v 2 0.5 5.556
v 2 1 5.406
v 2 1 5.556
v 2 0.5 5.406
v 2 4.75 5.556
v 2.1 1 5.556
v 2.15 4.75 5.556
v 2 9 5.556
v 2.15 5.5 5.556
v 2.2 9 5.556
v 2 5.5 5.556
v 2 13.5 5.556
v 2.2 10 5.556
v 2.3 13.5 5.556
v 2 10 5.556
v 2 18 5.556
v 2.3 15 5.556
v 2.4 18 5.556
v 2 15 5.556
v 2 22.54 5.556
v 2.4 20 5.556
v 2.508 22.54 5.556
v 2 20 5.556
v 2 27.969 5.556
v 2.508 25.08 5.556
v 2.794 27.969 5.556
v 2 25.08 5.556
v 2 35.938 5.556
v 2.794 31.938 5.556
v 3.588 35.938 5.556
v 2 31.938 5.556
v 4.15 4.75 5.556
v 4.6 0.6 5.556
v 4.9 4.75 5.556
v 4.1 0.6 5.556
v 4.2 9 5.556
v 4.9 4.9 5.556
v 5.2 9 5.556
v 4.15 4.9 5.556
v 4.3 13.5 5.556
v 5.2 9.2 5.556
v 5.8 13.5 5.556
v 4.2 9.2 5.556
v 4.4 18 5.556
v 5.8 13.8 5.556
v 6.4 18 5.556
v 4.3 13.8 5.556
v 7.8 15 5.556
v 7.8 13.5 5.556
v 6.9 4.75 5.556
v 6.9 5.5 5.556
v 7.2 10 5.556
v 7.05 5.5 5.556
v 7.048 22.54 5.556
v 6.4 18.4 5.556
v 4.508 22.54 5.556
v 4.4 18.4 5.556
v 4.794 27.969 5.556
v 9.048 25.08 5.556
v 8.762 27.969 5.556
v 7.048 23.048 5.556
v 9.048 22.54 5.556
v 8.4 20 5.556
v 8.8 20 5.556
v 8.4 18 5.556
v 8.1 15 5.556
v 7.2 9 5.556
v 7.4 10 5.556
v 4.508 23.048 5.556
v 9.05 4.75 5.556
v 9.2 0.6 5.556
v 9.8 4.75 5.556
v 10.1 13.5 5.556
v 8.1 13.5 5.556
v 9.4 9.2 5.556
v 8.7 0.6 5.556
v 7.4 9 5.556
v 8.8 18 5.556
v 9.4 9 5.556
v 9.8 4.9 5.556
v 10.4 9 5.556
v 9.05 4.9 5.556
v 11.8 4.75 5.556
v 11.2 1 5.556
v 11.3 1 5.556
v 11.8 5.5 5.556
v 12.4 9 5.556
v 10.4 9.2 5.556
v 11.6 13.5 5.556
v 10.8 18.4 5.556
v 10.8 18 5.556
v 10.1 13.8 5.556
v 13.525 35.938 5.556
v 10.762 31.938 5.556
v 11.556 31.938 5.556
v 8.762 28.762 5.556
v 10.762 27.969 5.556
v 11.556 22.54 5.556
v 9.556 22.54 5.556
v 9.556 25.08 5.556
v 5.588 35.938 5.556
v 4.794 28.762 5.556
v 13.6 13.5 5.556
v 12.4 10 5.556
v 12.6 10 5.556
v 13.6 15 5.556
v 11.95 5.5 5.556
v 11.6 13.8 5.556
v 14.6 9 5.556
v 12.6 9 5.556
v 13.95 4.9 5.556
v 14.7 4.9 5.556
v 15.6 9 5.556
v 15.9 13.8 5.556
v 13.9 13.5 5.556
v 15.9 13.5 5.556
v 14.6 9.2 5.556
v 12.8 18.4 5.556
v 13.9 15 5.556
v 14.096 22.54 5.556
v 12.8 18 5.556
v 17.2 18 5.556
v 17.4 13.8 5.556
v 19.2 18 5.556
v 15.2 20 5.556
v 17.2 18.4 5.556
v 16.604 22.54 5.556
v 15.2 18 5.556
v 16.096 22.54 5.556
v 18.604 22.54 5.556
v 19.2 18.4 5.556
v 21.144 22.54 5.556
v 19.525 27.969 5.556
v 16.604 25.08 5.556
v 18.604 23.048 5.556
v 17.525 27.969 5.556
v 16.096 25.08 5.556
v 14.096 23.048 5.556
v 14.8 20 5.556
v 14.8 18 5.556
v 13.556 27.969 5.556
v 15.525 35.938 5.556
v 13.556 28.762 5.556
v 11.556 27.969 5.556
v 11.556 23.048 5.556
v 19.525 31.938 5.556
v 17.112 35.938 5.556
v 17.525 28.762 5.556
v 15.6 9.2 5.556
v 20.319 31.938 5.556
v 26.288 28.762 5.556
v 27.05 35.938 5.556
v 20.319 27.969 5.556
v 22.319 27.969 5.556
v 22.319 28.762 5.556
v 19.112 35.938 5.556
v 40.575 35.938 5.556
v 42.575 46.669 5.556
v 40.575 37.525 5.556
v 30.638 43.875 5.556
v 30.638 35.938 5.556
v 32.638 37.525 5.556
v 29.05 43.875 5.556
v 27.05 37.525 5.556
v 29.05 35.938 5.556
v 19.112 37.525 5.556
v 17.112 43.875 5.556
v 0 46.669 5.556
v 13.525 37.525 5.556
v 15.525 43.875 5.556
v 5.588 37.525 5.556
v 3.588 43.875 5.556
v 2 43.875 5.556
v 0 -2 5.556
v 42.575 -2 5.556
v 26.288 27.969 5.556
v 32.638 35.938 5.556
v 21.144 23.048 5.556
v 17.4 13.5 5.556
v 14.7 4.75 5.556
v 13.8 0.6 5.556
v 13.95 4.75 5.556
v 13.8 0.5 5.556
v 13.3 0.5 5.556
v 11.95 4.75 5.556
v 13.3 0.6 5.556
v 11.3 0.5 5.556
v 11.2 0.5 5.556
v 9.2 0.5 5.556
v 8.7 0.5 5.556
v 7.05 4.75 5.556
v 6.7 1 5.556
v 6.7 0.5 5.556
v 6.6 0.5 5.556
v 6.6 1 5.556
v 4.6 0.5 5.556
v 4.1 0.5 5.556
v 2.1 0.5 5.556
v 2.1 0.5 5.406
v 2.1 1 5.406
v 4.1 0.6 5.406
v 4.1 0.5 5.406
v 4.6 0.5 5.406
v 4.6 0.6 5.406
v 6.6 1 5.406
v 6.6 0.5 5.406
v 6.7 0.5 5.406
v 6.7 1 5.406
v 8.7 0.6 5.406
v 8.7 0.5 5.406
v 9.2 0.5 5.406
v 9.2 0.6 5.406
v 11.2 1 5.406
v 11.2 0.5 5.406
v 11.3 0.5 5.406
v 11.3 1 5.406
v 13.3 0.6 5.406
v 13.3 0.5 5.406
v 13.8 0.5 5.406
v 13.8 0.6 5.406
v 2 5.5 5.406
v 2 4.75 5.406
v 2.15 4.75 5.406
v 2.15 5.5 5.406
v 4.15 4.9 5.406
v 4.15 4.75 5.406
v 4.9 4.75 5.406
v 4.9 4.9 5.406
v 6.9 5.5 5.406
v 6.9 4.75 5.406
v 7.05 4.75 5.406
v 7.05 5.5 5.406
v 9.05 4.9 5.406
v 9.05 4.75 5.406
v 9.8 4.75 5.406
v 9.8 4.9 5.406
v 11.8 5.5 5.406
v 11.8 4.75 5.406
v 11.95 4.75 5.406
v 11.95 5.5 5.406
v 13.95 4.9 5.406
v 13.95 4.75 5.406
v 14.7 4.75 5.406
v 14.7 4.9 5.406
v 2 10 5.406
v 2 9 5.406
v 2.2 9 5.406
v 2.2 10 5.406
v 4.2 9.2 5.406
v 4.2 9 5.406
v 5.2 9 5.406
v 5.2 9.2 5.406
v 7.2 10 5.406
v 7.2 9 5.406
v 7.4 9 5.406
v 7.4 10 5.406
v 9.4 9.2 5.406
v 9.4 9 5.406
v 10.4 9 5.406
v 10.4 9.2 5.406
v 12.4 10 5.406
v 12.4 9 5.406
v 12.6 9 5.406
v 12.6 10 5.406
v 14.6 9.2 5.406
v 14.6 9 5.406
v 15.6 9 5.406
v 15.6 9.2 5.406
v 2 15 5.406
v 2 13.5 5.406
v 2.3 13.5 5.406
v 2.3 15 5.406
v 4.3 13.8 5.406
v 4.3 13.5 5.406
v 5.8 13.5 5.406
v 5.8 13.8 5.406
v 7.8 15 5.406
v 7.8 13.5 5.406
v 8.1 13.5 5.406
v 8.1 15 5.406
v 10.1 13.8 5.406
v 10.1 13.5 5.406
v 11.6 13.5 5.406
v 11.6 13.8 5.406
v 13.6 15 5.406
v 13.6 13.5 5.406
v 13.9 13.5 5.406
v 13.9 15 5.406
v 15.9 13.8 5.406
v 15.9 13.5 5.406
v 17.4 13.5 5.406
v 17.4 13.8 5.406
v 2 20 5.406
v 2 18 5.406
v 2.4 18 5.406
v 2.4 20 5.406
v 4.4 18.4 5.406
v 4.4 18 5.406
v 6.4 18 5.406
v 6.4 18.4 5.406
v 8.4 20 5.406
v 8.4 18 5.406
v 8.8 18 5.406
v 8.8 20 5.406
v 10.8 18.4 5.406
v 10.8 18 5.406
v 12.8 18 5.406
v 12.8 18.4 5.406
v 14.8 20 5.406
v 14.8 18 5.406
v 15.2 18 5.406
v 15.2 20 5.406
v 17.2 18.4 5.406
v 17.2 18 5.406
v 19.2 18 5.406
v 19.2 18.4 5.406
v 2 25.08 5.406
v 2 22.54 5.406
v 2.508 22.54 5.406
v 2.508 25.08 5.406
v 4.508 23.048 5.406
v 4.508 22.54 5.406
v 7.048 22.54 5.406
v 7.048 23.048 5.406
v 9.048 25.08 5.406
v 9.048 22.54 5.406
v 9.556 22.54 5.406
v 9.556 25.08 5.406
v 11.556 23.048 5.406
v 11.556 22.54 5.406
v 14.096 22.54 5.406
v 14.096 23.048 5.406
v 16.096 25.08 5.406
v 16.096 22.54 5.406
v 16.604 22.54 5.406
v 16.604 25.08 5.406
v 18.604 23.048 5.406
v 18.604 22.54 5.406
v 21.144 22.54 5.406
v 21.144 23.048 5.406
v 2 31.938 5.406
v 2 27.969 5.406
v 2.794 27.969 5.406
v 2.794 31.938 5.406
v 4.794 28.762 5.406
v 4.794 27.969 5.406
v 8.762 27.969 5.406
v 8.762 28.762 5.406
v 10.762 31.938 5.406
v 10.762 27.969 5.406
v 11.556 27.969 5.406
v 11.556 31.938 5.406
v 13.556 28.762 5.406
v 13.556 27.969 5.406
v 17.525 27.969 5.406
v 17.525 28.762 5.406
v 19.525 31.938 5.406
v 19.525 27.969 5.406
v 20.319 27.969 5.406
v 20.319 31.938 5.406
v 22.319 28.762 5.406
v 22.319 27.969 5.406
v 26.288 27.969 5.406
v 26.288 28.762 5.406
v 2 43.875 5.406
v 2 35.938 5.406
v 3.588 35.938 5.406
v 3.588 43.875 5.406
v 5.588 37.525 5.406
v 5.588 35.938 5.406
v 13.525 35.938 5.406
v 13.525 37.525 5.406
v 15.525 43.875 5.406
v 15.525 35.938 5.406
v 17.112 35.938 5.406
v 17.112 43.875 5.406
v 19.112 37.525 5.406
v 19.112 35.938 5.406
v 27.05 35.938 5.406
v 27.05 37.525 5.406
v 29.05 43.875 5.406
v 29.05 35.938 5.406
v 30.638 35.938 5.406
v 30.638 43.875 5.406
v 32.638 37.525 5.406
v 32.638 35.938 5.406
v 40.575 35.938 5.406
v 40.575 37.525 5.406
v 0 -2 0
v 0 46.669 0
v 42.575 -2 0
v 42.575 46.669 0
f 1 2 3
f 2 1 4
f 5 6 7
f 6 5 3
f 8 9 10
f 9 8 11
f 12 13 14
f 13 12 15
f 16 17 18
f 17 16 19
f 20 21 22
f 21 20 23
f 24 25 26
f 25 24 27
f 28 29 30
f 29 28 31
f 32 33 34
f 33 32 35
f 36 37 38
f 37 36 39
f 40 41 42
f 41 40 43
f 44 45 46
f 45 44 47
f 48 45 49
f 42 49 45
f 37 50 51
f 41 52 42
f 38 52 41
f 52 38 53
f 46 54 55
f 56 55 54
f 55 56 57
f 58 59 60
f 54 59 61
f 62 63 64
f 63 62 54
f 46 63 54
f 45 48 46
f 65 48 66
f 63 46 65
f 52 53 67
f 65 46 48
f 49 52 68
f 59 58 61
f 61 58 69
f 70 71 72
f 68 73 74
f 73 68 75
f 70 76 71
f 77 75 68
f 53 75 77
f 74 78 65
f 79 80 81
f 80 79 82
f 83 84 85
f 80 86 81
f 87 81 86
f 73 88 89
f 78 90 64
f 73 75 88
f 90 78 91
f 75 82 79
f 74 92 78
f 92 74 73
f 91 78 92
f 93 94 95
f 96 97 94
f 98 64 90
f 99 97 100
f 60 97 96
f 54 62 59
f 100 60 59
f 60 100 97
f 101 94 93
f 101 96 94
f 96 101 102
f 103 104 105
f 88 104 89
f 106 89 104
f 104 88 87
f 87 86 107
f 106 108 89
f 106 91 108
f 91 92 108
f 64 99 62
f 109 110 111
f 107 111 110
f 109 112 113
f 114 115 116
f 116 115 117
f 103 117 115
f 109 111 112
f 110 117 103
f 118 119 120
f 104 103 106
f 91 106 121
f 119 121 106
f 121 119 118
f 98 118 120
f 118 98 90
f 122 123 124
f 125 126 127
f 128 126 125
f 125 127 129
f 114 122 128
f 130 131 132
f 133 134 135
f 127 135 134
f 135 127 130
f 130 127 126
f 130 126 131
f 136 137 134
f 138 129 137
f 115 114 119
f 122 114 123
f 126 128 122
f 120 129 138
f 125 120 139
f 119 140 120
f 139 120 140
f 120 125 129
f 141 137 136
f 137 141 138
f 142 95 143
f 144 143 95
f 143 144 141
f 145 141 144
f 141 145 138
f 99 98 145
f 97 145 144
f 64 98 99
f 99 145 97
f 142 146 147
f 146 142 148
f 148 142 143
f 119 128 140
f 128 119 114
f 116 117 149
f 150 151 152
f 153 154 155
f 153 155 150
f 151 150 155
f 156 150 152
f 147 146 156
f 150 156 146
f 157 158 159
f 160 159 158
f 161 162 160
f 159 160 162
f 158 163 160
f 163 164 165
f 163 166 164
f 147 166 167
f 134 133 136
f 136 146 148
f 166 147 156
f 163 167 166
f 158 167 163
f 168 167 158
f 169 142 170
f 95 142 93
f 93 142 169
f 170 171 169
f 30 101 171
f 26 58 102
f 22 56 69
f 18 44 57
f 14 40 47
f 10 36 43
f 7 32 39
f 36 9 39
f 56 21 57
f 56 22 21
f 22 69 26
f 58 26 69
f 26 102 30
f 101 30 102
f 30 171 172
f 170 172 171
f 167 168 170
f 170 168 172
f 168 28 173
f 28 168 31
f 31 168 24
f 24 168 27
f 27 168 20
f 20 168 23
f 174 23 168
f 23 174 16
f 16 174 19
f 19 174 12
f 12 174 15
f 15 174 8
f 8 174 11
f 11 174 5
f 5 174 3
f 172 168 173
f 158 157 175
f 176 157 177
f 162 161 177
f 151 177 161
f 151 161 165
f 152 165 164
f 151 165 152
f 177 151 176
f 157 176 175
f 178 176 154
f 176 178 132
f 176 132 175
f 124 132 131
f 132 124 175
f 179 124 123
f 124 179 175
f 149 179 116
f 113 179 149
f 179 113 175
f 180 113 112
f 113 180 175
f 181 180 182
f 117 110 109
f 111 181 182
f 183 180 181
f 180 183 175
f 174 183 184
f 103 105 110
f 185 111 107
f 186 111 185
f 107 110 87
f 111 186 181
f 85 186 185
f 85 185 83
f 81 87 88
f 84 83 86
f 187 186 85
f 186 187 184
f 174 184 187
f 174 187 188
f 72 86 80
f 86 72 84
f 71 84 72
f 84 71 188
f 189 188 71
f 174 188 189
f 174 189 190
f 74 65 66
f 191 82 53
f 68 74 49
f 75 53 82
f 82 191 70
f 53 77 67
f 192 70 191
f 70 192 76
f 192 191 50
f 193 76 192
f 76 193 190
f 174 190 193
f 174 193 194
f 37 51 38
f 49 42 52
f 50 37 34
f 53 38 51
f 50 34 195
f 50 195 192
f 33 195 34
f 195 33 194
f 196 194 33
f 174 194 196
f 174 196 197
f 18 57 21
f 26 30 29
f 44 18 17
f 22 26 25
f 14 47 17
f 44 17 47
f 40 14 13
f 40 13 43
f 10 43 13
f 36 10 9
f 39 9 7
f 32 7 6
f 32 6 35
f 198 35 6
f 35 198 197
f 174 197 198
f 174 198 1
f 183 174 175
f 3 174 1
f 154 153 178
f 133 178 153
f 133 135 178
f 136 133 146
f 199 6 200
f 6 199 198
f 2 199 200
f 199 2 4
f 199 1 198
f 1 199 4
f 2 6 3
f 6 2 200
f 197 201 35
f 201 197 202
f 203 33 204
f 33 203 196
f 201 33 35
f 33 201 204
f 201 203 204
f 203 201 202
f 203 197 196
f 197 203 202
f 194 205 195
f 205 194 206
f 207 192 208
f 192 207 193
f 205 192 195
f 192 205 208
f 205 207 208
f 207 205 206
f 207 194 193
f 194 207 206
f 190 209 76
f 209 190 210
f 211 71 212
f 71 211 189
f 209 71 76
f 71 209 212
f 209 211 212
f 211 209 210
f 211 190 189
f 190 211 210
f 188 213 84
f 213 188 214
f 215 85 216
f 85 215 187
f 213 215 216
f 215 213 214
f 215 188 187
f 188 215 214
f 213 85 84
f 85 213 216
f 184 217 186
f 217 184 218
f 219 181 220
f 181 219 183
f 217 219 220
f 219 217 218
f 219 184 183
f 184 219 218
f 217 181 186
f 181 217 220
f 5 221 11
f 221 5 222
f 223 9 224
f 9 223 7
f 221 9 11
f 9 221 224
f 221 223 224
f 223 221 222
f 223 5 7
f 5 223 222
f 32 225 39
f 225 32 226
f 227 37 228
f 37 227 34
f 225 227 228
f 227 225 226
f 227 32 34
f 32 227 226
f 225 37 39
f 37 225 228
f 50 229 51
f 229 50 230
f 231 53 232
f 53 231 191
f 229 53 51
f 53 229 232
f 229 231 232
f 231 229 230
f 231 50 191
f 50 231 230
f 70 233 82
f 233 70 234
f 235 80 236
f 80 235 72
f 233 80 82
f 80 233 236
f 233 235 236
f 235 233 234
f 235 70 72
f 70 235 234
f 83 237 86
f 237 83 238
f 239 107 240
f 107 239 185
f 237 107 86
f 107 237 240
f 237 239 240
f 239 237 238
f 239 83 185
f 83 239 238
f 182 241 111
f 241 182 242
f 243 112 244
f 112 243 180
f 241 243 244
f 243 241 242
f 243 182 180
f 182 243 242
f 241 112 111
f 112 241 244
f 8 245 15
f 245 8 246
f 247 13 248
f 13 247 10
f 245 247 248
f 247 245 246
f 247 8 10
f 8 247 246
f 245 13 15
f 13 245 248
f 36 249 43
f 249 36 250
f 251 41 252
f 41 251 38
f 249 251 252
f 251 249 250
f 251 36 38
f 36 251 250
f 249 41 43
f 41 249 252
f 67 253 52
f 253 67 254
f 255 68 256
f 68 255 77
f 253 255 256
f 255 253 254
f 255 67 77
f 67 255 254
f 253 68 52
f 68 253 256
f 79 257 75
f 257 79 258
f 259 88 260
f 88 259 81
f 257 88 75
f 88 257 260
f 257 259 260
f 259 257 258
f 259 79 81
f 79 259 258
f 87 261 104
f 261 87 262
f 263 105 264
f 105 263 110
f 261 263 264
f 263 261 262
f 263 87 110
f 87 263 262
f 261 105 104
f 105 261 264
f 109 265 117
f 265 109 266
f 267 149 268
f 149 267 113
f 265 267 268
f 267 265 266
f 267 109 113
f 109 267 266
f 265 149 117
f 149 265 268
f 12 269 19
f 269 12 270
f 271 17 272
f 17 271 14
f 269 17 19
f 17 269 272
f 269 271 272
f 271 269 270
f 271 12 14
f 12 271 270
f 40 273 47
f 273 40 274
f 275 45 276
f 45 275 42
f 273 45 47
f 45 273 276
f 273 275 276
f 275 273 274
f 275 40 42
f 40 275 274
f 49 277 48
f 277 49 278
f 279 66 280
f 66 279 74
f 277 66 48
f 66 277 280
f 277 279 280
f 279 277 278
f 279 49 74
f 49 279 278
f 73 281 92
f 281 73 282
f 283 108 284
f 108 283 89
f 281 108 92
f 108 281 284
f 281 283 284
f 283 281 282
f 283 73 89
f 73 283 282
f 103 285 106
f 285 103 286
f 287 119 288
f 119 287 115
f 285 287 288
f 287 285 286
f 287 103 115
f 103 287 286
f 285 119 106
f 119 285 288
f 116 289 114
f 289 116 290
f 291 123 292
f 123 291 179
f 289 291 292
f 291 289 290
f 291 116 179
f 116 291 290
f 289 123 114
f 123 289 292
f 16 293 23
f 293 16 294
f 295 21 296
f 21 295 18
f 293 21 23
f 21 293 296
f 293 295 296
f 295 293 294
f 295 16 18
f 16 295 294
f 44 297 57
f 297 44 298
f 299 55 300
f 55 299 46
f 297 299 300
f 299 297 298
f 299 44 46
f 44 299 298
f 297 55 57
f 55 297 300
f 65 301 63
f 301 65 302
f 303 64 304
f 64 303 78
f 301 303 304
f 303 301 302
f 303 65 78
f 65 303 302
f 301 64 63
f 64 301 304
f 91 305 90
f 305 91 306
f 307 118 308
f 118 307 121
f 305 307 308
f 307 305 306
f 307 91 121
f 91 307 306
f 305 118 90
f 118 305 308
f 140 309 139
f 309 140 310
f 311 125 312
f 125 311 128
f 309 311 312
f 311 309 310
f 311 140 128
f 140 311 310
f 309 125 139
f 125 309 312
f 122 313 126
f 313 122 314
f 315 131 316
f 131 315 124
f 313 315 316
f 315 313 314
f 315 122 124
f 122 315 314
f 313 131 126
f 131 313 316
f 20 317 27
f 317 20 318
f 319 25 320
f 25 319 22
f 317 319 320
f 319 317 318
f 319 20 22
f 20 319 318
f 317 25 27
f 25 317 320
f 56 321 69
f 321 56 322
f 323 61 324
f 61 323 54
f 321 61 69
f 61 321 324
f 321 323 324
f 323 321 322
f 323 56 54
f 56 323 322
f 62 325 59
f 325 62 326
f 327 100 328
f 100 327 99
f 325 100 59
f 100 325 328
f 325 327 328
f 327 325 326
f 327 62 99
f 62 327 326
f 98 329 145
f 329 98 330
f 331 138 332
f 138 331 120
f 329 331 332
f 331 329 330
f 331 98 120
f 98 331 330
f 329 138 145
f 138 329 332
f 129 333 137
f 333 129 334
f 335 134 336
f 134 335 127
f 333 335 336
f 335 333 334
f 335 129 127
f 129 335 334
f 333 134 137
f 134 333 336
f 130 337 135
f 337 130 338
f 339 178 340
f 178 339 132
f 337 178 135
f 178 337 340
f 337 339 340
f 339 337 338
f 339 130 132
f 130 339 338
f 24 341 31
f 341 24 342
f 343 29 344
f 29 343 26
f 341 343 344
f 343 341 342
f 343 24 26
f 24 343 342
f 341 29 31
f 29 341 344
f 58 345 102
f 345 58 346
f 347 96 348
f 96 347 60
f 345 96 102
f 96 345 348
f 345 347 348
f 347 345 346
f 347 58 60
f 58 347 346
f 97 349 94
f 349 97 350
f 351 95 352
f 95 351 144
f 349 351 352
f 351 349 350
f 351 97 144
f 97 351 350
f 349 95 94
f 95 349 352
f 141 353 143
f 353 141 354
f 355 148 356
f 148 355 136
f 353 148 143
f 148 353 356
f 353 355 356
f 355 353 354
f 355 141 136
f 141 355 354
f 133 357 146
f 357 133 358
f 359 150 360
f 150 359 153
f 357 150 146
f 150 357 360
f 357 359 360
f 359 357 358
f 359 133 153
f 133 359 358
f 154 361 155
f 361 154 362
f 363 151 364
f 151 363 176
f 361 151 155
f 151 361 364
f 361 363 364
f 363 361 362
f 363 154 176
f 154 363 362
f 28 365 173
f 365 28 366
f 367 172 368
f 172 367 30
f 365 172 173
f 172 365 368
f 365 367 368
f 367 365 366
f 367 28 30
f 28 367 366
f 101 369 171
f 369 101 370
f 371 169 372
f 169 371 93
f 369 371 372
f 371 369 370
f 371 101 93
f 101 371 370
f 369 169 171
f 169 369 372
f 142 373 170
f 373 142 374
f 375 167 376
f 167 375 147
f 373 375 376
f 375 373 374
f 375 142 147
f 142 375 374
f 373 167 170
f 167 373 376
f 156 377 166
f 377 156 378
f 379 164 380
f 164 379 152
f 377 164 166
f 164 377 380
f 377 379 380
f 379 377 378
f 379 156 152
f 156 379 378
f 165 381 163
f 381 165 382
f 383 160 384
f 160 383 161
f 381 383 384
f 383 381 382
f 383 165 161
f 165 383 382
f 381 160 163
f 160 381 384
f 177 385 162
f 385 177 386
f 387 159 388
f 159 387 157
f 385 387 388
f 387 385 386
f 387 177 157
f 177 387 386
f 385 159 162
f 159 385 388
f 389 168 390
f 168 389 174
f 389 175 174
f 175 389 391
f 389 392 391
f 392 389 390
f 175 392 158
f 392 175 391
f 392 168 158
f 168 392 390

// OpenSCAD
//Parameters
  //Number of technical replicates
  numReplications = 3;	
  //Feature sizes to test in ascending order
  cubeSize = [0.05, 0.075, 0.1, 0.15, 0.2, 0.254, 0.396875, 0.79375];
  //End mill diameter 
  depth = 0.15;     //Depth of cut
  stockZ = 5.556;

//Maths
  //Add 1mm to end mill diameter to space out replicates
  Spacing = 2;
  StockX = (((2*max(cubeSize))+(2*Spacing)+(10*max(cubeSize)))*numReplications);
  StockZ = stockZ; 
  NumOfCubeSizes = len(cubeSize);
  
//uncomment to render
negativeFeaturesTestDevice();

//Module Definition
module negativeFeaturesTestDevice(){
difference(){
  //Draw stock
  hull(){
    translate([0,-Spacing,0])cube([Spacing+StockX,Spacing,StockZ], center=false);
    for(i = [0 : len(cubeSize)-1]){
    let (YLocation = 10*cubeSize[i]+i*2*Spacing){
	for (j = [0: numReplications-1]){
	  if (i==len(cubeSize)-1)translate([0,YLocation+10*cubeSize[i],0])cube([StockX+Spacing,Spacing+cubeSize[i],StockZ], center=false);
	  translate([Spacing+(j*(cubeSize[i]+Spacing)),YLocation,0]){
	    cube([Spacing+cubeSize[i], Spacing+cubeSize[i], StockZ], center=false);
	  }
	}
      }
    }
  }

  //Make test structures 
  for(i = [0 : len(cubeSize)-1]){
    let (YLocation = 10*cubeSize[i]+i*2*Spacing){
      for (j = [0: numReplications-1]){
        translate([Spacing+(j*(12*cubeSize[i]+2*Spacing)),YLocation,StockZ-depth]){
          #cube([2*cubeSize[i], 10*cubeSize[i], depth], center=false);
        }
        translate([(2*cubeSize[i]+2*Spacing)+(j*(12*cubeSize[i]+2*Spacing)),YLocation,StockZ-depth]){
	  #cube([10*cubeSize[i], 2*cubeSize[i], depth], center=false);
	}
      }
    }
  }
}
}
